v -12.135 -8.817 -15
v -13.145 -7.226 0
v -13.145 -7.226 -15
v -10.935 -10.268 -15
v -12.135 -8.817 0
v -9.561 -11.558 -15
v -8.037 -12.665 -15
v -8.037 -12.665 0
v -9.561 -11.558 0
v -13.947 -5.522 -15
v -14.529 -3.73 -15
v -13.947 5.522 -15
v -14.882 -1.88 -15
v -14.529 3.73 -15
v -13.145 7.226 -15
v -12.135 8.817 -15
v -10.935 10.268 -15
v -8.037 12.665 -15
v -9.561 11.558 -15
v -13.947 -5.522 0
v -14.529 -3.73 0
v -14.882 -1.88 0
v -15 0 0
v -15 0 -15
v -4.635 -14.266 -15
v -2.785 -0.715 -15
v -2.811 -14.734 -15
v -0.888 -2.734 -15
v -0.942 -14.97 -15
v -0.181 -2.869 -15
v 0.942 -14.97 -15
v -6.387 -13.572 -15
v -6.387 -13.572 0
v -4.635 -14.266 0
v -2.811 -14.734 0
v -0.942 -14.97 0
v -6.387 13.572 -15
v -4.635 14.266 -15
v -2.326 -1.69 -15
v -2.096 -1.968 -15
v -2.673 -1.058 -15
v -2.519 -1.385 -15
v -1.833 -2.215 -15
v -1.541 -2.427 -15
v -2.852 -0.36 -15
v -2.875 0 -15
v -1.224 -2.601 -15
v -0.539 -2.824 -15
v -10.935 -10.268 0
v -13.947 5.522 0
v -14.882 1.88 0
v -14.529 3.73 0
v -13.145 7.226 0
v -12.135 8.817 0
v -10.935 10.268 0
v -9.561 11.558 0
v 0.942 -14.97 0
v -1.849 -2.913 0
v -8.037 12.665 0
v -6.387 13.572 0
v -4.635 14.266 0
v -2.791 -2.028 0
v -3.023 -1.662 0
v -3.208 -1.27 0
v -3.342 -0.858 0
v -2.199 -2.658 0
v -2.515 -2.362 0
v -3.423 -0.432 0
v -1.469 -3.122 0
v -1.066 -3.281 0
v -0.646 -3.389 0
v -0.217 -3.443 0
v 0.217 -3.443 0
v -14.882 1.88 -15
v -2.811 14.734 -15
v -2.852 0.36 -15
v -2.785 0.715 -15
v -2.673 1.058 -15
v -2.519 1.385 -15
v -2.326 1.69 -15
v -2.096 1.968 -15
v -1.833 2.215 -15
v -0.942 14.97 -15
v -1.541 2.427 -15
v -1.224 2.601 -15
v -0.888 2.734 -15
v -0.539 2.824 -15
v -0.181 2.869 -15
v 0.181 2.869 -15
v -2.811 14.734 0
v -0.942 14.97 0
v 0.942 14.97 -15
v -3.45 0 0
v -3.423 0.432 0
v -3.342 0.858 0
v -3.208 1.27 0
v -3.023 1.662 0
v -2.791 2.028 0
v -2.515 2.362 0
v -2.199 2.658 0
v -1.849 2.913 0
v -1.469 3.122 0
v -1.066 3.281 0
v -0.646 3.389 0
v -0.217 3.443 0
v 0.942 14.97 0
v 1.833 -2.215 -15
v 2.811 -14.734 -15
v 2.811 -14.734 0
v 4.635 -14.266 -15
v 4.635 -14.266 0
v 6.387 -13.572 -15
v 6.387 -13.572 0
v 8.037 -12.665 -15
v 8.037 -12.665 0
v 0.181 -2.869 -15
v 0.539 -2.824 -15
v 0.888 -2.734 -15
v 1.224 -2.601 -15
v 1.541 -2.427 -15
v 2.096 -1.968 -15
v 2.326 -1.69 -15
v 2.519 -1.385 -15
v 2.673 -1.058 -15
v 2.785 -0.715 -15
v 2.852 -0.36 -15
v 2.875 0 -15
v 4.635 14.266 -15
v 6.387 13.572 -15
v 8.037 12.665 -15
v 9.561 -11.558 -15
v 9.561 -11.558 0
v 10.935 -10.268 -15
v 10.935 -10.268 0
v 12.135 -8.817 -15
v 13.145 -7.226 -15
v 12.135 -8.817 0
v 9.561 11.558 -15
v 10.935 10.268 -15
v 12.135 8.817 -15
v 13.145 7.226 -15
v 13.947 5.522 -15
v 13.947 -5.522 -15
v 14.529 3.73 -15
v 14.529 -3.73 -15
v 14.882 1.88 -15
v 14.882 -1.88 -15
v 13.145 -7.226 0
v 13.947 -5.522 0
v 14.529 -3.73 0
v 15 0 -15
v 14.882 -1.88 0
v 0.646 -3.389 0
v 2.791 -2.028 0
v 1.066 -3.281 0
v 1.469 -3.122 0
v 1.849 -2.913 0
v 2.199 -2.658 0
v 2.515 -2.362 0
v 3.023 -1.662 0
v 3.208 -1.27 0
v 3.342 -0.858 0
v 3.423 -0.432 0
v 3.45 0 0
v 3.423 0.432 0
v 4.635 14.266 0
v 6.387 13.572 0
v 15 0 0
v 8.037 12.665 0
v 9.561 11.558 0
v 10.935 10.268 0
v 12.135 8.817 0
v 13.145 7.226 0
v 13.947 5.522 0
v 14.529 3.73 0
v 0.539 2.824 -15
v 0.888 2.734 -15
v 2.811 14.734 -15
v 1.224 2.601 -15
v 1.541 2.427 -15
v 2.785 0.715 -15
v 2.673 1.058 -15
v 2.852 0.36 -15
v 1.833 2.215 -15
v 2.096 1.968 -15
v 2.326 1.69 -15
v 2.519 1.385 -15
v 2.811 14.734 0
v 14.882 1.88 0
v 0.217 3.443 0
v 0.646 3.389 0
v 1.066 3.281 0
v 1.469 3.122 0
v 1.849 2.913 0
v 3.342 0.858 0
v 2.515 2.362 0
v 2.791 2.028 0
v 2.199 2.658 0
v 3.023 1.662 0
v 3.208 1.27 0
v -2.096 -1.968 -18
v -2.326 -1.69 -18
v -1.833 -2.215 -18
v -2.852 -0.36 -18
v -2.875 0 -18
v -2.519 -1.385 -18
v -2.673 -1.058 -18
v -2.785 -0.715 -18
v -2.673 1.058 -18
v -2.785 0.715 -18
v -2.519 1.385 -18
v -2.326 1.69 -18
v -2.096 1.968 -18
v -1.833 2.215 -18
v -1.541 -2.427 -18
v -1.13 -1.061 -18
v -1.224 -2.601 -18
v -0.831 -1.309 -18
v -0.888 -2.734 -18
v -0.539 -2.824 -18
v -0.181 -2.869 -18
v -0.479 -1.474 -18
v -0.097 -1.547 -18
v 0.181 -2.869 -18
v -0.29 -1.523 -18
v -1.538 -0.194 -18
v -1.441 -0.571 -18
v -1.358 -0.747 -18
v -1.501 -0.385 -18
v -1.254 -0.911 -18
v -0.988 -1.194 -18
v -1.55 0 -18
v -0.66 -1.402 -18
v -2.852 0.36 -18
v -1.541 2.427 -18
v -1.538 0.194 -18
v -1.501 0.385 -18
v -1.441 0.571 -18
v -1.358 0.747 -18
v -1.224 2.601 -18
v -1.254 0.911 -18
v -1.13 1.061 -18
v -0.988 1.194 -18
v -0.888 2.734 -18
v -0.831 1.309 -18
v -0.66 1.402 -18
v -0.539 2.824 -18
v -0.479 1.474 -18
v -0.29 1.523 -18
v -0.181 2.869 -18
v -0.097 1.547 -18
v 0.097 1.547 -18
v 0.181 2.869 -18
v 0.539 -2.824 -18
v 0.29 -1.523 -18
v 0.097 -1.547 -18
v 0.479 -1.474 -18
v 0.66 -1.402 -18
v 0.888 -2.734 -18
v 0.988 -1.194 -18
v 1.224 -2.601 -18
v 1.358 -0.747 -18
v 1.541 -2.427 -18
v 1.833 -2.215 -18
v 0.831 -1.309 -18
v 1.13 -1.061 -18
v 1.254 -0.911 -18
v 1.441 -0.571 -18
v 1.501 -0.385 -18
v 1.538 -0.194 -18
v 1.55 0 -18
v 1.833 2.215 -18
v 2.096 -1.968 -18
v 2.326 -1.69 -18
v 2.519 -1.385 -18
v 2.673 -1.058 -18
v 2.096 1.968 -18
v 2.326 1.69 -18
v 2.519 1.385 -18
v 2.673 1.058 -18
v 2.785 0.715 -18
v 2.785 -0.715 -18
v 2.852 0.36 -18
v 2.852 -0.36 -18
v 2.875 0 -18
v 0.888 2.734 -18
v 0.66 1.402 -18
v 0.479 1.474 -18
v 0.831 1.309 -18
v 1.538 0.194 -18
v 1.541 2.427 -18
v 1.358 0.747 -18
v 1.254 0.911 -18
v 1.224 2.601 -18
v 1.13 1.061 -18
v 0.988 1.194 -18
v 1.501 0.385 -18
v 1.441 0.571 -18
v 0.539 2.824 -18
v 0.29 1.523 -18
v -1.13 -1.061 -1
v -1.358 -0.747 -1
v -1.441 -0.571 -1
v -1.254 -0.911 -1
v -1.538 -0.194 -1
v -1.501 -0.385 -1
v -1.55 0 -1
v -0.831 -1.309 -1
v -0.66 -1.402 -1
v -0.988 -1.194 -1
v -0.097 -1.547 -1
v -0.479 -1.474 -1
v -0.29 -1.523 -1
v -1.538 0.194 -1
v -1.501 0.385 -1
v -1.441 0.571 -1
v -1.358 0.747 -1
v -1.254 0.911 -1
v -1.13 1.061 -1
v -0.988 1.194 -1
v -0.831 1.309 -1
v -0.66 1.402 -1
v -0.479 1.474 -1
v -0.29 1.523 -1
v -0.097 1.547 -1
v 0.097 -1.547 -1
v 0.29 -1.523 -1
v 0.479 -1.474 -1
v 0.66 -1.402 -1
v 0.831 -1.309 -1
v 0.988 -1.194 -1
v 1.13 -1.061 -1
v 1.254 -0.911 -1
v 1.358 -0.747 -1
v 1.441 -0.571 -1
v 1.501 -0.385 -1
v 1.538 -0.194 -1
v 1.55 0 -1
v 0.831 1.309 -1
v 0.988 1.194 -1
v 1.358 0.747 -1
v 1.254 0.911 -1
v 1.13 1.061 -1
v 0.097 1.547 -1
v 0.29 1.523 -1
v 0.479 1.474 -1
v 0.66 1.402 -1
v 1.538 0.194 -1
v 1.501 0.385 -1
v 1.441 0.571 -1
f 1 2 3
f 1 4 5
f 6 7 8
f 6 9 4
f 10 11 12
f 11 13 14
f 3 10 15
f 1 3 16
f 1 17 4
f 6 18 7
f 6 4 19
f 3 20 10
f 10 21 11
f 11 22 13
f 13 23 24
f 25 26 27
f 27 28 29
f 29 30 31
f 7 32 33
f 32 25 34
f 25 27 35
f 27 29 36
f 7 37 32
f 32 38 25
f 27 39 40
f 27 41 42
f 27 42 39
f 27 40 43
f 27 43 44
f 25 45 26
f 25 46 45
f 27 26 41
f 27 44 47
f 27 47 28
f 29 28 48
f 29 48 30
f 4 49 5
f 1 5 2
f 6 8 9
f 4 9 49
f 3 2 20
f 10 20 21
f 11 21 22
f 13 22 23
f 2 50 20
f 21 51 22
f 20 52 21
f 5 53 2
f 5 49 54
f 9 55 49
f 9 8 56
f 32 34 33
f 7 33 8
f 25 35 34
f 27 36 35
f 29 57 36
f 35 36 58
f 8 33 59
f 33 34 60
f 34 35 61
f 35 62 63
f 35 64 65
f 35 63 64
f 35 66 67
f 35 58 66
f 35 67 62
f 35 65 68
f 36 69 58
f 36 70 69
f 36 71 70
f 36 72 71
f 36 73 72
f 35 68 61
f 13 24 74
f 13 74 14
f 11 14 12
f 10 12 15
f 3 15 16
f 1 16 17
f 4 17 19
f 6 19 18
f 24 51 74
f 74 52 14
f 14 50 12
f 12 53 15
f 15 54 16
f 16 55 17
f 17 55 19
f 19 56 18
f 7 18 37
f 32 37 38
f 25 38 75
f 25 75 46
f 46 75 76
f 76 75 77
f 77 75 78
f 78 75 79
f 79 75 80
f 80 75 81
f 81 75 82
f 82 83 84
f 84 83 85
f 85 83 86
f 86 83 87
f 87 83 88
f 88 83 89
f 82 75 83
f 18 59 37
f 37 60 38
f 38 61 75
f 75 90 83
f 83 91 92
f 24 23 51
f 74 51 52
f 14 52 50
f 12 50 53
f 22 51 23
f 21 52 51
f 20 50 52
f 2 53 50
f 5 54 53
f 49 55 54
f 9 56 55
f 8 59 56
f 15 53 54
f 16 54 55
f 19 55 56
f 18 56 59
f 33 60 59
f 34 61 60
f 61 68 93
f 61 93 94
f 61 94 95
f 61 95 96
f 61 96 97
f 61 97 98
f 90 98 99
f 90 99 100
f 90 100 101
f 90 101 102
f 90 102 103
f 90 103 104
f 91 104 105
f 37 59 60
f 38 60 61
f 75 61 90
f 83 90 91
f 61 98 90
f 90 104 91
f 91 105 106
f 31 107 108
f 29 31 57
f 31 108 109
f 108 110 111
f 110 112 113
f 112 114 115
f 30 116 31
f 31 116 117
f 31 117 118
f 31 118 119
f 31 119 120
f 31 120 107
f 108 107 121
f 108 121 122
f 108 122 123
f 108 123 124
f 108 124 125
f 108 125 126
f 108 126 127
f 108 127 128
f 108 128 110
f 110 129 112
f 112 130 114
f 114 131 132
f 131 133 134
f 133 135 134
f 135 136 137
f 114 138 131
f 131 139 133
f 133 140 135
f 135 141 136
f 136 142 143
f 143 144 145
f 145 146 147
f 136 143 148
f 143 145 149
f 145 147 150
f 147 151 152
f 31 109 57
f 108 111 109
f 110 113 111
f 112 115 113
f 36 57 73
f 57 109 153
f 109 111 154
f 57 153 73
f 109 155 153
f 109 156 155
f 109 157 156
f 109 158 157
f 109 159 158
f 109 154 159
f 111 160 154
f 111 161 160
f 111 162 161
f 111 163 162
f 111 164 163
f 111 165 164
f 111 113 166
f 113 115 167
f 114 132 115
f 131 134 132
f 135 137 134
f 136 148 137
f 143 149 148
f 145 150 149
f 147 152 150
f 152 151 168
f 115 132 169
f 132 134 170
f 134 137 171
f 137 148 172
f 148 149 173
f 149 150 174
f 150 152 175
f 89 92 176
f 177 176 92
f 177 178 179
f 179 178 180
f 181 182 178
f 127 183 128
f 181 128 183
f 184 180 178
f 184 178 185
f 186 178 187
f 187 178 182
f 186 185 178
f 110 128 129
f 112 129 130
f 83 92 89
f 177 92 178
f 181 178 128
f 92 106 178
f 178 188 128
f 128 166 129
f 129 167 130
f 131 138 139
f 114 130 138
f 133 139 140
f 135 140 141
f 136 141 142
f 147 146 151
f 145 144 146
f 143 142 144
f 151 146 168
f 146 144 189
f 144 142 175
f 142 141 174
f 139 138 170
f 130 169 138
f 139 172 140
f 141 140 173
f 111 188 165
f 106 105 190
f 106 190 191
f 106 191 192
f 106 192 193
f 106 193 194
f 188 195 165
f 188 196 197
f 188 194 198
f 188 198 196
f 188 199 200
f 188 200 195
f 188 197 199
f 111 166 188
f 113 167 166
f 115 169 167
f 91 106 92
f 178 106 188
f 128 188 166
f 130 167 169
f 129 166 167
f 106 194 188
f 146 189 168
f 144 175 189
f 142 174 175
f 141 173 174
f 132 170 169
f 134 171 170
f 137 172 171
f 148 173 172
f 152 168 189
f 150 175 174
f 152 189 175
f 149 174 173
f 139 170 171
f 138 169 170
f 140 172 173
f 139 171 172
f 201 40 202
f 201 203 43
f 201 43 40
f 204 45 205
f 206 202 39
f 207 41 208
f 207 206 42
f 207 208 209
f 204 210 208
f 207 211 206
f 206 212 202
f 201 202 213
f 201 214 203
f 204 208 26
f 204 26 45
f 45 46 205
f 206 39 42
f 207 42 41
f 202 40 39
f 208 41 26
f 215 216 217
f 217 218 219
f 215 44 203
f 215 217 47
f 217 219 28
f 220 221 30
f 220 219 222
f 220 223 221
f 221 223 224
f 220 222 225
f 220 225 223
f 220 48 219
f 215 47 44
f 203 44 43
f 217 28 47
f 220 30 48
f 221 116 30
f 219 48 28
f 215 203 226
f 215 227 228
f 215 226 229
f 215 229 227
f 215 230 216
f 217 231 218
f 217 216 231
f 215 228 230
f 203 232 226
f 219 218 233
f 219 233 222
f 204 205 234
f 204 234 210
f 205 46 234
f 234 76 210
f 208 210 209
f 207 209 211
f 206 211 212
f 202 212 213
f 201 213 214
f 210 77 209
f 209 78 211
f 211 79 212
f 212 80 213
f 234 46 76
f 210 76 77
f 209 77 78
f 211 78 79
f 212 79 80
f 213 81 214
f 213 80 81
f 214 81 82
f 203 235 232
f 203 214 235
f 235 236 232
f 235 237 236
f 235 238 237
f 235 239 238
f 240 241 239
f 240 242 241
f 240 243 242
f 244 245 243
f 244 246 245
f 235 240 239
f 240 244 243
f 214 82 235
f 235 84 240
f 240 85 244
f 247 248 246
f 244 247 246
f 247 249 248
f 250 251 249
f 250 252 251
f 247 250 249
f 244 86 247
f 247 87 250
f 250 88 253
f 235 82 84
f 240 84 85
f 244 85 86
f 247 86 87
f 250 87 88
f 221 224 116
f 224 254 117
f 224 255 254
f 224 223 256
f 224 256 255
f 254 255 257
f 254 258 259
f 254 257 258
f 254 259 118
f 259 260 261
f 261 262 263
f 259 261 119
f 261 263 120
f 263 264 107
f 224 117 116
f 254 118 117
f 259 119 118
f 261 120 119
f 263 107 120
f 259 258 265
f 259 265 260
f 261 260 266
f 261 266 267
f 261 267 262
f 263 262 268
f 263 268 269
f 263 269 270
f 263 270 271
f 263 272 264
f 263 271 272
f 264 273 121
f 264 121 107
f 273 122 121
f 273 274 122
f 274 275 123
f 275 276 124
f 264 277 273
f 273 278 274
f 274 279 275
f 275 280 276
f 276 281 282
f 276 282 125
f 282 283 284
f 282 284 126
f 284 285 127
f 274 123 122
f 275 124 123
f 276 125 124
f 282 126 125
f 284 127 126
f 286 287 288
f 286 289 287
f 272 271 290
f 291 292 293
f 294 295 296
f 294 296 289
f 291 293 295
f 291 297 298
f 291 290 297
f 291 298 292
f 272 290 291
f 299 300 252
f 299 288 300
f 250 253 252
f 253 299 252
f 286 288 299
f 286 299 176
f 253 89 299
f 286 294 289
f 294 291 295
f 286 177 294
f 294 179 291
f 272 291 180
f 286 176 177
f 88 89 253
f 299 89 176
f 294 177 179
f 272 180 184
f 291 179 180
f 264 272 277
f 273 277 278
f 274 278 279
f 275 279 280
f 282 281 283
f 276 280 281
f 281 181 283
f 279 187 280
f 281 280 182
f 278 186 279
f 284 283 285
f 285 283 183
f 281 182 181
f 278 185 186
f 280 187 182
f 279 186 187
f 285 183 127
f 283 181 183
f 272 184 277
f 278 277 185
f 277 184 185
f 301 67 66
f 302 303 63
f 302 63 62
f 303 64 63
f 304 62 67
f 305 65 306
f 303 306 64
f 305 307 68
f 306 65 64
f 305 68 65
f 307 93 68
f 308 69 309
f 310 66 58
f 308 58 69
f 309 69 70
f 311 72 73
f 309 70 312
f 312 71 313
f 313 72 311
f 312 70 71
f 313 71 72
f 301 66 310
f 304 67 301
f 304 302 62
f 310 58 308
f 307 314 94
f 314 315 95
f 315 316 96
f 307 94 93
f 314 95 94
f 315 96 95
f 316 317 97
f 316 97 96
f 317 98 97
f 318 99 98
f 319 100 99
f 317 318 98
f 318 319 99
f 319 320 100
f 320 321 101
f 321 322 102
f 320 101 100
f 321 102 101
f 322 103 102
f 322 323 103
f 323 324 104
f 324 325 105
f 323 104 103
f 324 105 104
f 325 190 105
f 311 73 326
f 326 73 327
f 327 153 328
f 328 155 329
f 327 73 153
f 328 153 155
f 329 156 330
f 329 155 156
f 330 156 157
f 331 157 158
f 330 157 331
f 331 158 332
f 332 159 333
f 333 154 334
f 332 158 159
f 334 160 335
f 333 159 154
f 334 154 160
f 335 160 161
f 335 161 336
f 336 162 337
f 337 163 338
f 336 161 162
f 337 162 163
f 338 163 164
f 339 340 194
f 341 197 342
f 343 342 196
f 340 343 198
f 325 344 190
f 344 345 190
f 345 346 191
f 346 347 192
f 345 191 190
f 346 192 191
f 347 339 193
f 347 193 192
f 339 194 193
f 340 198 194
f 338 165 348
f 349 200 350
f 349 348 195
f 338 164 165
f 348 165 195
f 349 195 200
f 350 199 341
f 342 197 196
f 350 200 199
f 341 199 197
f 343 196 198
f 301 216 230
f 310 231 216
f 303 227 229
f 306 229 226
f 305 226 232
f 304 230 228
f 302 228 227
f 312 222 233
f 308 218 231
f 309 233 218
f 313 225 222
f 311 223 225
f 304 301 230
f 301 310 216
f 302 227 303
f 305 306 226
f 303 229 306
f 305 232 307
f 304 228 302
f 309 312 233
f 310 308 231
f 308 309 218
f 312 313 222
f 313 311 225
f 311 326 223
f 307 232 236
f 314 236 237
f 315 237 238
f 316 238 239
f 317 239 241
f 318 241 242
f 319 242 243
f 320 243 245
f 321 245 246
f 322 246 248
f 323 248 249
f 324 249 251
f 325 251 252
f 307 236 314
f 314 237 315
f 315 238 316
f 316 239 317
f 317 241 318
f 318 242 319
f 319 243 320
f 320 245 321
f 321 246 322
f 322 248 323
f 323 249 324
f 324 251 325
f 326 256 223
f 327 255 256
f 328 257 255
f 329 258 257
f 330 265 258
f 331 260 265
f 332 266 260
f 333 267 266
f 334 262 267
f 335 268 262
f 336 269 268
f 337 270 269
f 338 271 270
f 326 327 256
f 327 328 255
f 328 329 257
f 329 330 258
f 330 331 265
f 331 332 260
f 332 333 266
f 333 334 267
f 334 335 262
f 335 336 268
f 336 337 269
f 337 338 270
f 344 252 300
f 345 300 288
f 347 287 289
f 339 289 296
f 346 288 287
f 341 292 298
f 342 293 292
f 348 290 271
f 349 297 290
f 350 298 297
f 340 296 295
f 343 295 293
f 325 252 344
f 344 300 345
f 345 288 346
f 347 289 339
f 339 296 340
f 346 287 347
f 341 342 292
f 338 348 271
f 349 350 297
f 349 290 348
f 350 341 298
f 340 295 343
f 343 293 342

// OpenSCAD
$fn = 50;


difference() {
	union() {
		translate(v = [0, 0, -15.0000000000]) {
			cylinder(h = 15, r = 15.0000000000);
		}
		#translate(v = [0, 0, -18.0000000000]) {
			cylinder(h = 18, r = 2.8750000000);
		}
	}
	union() {
		translate(v = [0, 0, 0]) {
			rotate(a = [0, 0, 0]) {
				difference() {
					union() {
						translate(v = [0, 0, -18.0000000000]) {
							cylinder(h = 18, r = 1.2500000000);
						}
						translate(v = [0, 0, -1.0000000000]) {
							cylinder(h = 1.0000000000, r1 = 1.5500000000, r2 = 3.4500000000);
						}
						translate(v = [0, 0, -18.0000000000]) {
							cylinder(h = 18, r = 1.5500000000);
						}
						translate(v = [0, 0, -18.0000000000]) {
							cylinder(h = 18, r = 1.2500000000);
						}
					}
					union();
				}
			}
		}
	}
}
